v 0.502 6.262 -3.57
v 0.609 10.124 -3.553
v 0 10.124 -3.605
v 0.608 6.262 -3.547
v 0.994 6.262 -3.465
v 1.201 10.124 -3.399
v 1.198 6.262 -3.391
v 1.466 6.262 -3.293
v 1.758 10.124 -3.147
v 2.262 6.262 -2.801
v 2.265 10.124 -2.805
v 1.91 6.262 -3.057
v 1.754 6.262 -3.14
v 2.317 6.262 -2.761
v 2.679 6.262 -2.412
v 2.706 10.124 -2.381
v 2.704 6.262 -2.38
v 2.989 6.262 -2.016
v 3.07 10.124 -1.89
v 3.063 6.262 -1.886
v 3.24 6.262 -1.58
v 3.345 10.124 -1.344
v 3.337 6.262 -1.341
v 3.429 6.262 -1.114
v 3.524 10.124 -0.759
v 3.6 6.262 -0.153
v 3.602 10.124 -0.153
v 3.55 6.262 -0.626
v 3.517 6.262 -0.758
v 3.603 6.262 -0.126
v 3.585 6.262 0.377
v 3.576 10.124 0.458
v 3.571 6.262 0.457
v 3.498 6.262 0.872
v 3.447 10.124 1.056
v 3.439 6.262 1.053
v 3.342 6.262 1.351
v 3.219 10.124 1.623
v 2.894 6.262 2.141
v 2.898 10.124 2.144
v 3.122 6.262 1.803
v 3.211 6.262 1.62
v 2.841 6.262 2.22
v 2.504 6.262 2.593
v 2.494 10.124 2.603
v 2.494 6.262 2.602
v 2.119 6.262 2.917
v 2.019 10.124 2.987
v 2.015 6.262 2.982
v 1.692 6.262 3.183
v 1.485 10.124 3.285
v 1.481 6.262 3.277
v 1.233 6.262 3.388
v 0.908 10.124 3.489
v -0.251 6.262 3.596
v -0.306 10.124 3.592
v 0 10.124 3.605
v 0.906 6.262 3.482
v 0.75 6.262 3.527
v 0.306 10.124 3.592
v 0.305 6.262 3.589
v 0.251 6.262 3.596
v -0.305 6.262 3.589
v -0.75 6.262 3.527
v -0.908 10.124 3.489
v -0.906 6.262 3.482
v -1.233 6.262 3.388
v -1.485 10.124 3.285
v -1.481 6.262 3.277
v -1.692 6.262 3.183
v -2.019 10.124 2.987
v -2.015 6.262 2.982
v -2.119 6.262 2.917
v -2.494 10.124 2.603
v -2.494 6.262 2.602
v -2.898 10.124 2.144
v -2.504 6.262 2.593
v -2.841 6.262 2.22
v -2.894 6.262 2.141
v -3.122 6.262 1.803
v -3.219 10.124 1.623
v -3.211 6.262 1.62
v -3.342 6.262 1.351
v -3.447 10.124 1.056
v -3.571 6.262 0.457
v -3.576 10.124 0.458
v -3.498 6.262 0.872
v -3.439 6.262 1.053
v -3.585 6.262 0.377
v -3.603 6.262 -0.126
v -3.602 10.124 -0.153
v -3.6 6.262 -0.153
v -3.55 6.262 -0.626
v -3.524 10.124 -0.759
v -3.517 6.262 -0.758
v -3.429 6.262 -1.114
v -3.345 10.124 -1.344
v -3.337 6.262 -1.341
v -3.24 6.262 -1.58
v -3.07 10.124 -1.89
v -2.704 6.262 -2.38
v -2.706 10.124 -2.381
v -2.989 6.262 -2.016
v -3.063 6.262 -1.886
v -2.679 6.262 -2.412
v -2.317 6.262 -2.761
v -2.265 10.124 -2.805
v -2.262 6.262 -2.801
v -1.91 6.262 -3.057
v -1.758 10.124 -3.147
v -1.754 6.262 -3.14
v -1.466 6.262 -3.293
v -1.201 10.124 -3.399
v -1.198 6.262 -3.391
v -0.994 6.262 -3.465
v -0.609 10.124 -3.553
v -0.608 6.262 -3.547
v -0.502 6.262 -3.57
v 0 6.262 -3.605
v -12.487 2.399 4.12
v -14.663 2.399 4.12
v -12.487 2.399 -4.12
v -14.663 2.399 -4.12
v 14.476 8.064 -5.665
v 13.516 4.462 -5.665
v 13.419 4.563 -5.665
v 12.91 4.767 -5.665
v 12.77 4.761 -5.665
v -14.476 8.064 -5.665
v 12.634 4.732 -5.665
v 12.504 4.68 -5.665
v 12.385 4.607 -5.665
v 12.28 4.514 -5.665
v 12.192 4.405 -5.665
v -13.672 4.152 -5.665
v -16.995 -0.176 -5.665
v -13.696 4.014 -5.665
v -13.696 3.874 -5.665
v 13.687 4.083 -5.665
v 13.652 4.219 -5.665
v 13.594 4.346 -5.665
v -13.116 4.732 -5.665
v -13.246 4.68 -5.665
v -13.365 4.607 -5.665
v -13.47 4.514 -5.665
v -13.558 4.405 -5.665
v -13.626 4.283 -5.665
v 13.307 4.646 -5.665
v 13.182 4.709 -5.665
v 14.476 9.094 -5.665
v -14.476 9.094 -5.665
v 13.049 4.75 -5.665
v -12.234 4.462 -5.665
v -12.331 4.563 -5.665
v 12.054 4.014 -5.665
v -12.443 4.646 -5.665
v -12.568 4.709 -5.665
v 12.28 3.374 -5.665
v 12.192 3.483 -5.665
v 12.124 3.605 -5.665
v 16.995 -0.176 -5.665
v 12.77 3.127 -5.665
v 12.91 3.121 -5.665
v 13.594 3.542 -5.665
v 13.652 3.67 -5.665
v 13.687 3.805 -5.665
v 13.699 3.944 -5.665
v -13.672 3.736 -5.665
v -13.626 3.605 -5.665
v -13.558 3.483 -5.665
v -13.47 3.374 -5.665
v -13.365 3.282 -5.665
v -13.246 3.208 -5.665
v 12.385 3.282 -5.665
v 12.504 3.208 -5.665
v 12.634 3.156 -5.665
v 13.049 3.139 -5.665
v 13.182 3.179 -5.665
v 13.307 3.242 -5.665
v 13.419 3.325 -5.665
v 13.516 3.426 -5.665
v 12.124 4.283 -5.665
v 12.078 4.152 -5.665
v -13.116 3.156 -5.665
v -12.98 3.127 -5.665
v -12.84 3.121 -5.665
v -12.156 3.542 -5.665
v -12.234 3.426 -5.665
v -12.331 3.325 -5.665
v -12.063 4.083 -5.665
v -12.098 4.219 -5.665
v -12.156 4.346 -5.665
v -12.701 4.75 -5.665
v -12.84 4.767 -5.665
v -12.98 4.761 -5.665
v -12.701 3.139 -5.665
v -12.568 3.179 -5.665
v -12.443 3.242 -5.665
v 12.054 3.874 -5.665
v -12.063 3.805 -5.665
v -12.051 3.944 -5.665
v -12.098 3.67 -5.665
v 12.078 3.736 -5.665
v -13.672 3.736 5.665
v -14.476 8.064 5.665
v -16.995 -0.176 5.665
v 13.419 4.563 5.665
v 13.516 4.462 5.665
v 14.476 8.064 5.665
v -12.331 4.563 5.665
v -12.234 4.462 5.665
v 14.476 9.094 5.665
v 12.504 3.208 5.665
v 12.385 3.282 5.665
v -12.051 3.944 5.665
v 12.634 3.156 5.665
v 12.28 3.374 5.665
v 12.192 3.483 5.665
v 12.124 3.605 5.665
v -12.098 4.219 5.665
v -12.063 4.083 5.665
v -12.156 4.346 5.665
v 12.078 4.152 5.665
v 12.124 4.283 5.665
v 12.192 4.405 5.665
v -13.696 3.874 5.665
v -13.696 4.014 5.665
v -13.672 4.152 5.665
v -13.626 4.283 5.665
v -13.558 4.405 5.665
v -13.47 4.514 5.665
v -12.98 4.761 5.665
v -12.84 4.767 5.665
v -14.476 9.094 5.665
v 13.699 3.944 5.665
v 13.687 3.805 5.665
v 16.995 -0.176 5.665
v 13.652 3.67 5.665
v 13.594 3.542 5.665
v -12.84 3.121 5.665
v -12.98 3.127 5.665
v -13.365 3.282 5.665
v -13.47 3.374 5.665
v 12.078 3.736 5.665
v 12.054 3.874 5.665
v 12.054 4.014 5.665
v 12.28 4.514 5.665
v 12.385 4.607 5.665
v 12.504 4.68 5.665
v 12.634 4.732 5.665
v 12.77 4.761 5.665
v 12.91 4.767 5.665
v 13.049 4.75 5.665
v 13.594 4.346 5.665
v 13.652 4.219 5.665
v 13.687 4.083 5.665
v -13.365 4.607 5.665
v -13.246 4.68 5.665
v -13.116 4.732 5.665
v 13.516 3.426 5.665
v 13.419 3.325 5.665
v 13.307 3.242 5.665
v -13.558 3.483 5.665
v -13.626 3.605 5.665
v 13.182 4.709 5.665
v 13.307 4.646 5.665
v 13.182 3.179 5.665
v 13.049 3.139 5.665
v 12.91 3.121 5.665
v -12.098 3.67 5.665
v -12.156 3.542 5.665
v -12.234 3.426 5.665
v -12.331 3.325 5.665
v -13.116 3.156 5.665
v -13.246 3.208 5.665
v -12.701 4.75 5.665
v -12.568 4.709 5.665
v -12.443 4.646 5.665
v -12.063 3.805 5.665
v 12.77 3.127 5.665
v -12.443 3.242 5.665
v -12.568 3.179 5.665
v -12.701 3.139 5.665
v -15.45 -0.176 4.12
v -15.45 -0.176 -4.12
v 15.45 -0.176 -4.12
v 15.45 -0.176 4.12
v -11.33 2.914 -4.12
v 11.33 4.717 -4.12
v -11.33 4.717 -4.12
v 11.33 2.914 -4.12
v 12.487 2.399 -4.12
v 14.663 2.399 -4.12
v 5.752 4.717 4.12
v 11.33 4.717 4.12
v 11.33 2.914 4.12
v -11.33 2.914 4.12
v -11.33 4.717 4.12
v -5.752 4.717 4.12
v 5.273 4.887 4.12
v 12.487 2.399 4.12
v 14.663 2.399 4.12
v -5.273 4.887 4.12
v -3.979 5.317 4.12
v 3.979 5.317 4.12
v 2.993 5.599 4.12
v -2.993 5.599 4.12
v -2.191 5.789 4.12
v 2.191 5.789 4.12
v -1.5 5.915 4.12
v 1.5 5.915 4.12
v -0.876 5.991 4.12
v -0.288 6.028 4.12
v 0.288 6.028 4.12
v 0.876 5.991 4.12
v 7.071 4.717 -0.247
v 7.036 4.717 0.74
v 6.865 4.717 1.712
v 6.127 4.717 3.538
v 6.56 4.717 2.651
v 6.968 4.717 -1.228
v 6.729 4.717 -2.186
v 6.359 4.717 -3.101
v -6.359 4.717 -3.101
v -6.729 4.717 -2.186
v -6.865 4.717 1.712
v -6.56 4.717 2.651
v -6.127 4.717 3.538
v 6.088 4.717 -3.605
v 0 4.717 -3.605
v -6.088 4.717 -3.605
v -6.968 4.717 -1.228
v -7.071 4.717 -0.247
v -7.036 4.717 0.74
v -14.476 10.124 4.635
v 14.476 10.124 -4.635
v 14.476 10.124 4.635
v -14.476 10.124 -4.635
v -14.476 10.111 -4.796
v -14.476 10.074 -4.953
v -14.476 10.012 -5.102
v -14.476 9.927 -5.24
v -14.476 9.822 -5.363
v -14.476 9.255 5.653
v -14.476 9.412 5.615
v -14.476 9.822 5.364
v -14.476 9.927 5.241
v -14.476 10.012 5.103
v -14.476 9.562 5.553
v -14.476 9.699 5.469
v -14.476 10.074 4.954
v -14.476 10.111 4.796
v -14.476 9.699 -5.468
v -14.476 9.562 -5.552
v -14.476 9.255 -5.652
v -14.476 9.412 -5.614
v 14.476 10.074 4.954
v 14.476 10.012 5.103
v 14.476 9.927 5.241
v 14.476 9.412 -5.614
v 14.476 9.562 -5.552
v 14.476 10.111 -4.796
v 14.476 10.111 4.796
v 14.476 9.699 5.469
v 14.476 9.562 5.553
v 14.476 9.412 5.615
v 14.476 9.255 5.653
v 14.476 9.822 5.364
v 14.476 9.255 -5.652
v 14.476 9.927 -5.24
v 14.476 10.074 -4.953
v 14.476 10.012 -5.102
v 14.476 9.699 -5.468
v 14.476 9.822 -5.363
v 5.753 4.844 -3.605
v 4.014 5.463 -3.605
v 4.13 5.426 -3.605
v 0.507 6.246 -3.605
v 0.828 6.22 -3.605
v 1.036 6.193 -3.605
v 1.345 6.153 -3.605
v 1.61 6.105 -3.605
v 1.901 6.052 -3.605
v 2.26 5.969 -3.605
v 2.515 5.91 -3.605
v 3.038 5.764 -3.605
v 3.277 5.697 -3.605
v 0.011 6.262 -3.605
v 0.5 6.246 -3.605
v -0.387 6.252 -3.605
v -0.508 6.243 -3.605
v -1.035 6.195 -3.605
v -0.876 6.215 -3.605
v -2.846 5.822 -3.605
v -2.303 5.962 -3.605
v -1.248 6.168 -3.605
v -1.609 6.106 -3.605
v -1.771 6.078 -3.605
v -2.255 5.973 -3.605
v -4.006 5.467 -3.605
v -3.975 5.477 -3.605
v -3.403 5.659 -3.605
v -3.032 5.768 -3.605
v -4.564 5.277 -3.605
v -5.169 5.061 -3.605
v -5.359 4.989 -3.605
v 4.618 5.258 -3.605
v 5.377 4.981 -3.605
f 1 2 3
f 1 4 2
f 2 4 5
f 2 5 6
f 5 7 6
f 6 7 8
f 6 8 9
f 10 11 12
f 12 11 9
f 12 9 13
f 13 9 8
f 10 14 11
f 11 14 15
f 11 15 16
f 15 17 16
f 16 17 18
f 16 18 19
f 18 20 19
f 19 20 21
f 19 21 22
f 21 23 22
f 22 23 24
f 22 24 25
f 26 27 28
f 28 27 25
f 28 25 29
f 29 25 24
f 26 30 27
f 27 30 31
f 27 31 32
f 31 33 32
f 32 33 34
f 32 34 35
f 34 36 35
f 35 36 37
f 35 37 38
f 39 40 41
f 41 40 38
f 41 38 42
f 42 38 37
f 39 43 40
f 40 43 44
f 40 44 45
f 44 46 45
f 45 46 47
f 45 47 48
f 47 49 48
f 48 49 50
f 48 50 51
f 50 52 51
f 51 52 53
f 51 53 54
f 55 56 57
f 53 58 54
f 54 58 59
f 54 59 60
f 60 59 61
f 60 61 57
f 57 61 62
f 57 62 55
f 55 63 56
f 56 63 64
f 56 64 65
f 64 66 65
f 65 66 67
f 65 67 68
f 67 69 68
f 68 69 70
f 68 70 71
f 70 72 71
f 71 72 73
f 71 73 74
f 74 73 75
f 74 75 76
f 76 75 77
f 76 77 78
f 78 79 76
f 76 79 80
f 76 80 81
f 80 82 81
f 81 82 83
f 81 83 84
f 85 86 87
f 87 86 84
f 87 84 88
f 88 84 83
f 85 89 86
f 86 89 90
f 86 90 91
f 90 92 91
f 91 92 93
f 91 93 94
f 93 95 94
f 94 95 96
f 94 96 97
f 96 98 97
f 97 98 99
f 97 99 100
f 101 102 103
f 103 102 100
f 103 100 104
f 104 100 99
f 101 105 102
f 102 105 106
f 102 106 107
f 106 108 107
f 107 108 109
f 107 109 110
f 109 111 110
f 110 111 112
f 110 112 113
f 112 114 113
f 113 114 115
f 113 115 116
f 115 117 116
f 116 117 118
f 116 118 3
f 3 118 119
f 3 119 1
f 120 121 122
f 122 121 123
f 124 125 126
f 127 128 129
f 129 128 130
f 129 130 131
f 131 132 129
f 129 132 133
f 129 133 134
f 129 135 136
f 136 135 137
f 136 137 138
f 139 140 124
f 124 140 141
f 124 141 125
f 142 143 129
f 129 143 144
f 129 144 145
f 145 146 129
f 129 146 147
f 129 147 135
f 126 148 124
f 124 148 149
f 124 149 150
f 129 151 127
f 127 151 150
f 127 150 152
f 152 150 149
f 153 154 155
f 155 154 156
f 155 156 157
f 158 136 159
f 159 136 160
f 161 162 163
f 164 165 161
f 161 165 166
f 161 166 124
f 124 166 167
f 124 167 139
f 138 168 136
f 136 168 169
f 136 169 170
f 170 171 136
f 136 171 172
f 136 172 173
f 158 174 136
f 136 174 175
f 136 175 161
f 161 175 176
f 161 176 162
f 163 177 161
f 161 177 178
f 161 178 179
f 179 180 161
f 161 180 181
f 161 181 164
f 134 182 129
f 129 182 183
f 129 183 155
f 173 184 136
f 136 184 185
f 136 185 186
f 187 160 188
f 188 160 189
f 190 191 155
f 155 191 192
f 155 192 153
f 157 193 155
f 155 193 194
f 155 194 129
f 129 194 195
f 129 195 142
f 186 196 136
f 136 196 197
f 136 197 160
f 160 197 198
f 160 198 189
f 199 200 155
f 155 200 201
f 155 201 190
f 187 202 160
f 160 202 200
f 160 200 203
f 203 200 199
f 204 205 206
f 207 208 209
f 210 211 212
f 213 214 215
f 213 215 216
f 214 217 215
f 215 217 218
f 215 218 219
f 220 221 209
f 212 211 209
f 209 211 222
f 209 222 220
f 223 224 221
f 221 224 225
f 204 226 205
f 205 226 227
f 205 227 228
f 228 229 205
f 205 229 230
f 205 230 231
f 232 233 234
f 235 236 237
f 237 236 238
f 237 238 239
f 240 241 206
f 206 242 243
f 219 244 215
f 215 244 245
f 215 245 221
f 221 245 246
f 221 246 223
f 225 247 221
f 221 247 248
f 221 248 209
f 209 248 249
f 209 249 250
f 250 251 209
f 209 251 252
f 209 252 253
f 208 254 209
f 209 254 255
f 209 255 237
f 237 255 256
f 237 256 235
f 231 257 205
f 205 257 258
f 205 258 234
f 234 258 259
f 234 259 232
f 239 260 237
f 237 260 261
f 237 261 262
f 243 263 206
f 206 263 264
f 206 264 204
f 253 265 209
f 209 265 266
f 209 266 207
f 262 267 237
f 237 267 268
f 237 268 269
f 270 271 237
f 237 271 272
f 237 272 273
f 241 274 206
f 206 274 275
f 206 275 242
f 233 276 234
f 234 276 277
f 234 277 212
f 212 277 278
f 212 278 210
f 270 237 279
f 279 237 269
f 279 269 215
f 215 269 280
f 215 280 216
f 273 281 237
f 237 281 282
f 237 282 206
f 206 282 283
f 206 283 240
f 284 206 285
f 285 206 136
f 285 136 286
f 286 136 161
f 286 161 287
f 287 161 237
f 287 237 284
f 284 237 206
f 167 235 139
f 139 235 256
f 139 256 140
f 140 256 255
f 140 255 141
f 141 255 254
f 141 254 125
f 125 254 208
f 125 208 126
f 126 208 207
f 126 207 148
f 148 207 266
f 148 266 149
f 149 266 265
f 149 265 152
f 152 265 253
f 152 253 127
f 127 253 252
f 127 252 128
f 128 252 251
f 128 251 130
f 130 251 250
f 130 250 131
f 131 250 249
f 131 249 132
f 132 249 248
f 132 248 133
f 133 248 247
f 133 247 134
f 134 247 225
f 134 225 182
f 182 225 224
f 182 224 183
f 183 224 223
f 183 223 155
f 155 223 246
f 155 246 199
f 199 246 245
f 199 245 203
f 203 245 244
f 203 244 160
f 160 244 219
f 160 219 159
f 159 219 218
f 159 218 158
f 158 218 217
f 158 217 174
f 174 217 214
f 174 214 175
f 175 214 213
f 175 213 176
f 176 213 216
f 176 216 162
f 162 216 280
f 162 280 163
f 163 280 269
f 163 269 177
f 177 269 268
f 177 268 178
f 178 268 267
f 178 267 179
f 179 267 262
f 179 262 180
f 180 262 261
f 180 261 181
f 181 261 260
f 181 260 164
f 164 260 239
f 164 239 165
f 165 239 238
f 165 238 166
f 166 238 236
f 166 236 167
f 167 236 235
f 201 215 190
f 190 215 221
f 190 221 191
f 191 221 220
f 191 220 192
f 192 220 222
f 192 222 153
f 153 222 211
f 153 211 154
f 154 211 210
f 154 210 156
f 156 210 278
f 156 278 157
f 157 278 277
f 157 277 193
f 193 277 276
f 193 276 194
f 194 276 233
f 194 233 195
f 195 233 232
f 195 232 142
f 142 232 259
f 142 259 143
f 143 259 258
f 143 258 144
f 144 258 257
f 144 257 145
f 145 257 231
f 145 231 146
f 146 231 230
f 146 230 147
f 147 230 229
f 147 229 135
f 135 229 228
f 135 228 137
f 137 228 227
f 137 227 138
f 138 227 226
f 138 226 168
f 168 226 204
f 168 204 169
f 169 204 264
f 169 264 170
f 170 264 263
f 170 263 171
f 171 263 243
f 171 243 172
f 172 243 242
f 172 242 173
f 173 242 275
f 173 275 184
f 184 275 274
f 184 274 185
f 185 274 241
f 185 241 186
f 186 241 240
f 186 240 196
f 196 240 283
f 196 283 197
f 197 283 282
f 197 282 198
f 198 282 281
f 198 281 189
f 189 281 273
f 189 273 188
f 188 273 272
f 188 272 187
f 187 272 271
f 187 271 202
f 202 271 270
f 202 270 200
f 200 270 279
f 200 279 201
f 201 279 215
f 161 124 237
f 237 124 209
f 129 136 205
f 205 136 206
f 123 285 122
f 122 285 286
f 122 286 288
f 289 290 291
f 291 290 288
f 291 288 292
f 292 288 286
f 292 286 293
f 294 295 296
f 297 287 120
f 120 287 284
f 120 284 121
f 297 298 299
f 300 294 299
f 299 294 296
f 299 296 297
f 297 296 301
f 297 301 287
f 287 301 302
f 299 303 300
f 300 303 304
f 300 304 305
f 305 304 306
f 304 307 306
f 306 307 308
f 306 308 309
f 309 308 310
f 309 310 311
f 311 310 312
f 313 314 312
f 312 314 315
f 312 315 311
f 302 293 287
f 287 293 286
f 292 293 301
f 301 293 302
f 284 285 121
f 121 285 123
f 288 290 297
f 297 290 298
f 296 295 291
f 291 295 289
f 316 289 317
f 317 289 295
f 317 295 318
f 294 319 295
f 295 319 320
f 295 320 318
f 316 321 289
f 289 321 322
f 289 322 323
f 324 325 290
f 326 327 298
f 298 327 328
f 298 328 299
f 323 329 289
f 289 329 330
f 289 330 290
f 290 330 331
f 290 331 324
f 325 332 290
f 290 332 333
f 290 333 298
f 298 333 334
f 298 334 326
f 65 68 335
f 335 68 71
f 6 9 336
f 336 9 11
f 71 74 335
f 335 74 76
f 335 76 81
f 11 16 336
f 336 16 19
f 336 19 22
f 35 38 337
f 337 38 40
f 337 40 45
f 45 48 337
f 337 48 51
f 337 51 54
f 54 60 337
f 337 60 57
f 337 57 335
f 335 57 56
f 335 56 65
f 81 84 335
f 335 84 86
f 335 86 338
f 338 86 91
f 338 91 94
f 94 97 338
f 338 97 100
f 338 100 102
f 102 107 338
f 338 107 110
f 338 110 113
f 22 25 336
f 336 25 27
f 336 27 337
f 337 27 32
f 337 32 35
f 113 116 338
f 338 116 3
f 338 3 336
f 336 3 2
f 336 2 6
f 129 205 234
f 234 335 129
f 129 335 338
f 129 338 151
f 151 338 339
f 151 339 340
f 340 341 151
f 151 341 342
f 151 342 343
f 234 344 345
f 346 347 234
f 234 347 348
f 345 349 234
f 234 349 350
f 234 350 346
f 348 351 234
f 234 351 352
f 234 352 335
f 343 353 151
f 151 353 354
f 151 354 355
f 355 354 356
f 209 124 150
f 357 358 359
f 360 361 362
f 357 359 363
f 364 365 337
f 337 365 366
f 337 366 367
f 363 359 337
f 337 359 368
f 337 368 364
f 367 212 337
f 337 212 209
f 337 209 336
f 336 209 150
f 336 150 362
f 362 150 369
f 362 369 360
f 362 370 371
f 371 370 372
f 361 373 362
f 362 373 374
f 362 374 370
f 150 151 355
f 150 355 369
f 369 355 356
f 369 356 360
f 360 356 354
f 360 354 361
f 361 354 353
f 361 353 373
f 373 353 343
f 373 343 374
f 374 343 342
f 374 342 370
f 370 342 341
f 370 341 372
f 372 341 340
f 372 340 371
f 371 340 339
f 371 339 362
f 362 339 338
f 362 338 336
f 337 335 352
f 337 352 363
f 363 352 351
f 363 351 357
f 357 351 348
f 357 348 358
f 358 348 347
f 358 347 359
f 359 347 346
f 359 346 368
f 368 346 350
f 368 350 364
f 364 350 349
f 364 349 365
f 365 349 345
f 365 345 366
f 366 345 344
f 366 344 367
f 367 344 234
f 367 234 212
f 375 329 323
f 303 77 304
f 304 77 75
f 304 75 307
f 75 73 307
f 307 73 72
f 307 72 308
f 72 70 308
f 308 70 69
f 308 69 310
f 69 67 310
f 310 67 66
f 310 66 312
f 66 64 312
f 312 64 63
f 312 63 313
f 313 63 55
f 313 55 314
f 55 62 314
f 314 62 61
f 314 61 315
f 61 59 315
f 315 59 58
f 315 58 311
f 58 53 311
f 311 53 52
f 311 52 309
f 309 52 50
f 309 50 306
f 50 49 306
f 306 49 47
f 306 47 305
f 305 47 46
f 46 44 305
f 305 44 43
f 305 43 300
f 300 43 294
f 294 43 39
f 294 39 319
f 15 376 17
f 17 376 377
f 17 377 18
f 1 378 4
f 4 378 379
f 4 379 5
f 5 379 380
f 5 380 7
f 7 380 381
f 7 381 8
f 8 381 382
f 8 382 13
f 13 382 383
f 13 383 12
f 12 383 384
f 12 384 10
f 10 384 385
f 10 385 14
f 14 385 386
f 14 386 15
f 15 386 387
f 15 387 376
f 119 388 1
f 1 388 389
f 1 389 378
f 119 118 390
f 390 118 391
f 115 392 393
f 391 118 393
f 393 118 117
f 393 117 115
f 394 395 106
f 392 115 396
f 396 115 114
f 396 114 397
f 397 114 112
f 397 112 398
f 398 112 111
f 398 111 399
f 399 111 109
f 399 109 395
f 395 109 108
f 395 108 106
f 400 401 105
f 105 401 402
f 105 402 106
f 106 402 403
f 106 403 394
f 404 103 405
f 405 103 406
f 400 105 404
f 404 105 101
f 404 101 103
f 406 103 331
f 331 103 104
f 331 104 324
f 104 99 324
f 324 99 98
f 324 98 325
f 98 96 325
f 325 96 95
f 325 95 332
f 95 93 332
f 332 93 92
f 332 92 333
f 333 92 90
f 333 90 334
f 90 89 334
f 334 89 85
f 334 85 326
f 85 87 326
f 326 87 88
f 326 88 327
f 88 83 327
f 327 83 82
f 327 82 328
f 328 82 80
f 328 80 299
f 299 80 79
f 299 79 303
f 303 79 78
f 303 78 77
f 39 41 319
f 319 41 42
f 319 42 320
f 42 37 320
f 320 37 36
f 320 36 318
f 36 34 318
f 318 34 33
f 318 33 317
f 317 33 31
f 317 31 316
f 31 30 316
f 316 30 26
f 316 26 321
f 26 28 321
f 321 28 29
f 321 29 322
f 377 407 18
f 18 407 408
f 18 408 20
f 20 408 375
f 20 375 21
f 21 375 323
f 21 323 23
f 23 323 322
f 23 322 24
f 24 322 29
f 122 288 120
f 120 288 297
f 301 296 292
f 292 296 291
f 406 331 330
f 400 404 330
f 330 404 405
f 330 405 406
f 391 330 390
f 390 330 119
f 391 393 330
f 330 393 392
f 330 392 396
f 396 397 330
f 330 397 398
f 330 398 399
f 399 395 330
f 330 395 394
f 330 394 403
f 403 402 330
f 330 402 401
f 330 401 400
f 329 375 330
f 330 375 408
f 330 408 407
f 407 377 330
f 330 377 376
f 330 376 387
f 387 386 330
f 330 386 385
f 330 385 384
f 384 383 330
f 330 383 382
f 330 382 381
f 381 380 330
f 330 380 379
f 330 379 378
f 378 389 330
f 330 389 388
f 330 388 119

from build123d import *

# Parameters (mm, degrees)
SKETCH1_W                      = 33
SKETCH1_H                      = 11
SKETCH1_W_2                    = 30
SKETCH1_H_2                    = 8
BOSS_EXTRUDE1_DEPTH            = 8
SKETCH3_R                      = 0.8
CUT_EXTRUDE3_DEPTH             = 22.38340478
CUT_EXTRUDE5_REACH             = 21.144
SKETCH5_R                      = 3.5
CUT_EXTRUDE5_DIRECTION_2_DEPTH = 20.144189719
CUT_EXTRUDE4_DEPTH             = 22.38340478
CUT_EXTRUDE9_START             = -1.5
CUT_EXTRUDE9_DEPTH             = 8
SKETCH9_W                      = 22
SKETCH9_H                      = 8
CUT_EXTRUDE8_DEPTH             = 2.25
BOSS_EXTRUDE8_START            = 2
SKETCH12_W                     = 28.108309096
SKETCH12_H                     = 11
SKETCH12_R                     = 3.5
BOSS_EXTRUDE8_DEPTH            = 2
FILLET1_R                      = 1
CHAMFER1_SIZE                  = 1.5
CHAMFER1_SIZE_2                = 3.369055161
CHAMFER2_SIZE                  = 0.5
CHAMFER2_SIZE2                 = 1.123018387
CHAMFER3_SIZE                  = 0.5
CHAMFER3_SIZE2                 = 1.123018387
BOSS_EXTRUDE9_REACH            = 20.168
HEAT_SHRINK_OFFSET_SCALE_SCALE = 1.03


with BuildPart() as part:
    # Sketch1 → Boss-Extrude1 (new body)
    # profile 1 of 2: a face of its own
    with BuildSketch(Plane(origin=(0, 0, 0), x_dir=(1, 0, 0), z_dir=(0, 1, 0))):
        Rectangle(SKETCH1_W, SKETCH1_H)
        Rectangle(SKETCH1_W_2, SKETCH1_H_2, mode=Mode.SUBTRACT)
    # profile 2 of 2: a face of its own
    with BuildSketch(Plane(origin=(0, 0, 0), x_dir=(1, 0, 0), z_dir=(0, 1, 0))):
        Rectangle(SKETCH1_W_2, SKETCH1_H_2)
    extrude(amount=BOSS_EXTRUDE1_DEPTH)

    # Sketch3 → Cut-Extrude3 (cut, through all)
    with BuildSketch(Plane.XY.offset(5.5)):
        with Locations((-12.5, 4)):
            Circle(SKETCH3_R)
        with Locations((12.5, 4)):
            Circle(SKETCH3_R)
    extrude(amount=-CUT_EXTRUDE3_DEPTH, mode=Mode.SUBTRACT)

    # Sketch5 → Cut-Extrude5 (cut, up to next)
    with BuildSketch(Plane(origin=(0, 8, 0), x_dir=(1, 0, 0), z_dir=(0, 1, 0)), mode=Mode.PRIVATE) as cut_extrude5_sk1:
        with Locations(Location((0, 0, 0), (0, 0, 90))):
            Circle(SKETCH5_R)
    cut_extrude5_tool1 = extrude(cut_extrude5_sk1.sketch, amount=-CUT_EXTRUDE5_REACH, mode=Mode.PRIVATE) & part.part
    add(cut_extrude5_tool1.solids().sort_by_distance((0, 8, 0))[0], mode=Mode.SUBTRACT)

    # Sketch5 → Cut-Extrude5 direction 2 (cut)
    with BuildSketch(Plane(origin=(0, 8, 0), x_dir=(1, 0, 0), z_dir=(0, 1, 0))):
        with Locations(Location((0, 0, 0), (0, 0, 90))):
            Circle(SKETCH5_R)
    extrude(amount=CUT_EXTRUDE5_DIRECTION_2_DEPTH, mode=Mode.SUBTRACT)

    # Sketch4 → Cut-Extrude4 (cut, through all)
    with BuildSketch(Plane.XY.offset(5.5)):
        Polygon((-16.5, 0), (-14.054154548, 8), (-16.5, 8), align=None)
        Polygon((16.5, 0), (14.054154548, 8), (16.5, 8), align=None)
    extrude(amount=-CUT_EXTRUDE4_DEPTH, mode=Mode.SUBTRACT)

    # Sketch14 → Cut-Extrude9 (cut)
    with BuildSketch(Plane.XY.offset(5.5).offset(CUT_EXTRUDE9_START)):
        Polygon((-15, 0), (15, 0), (14.235673296, 2.5), (-14.235673296, 2.5), align=None)
    extrude(amount=-CUT_EXTRUDE9_DEPTH, mode=Mode.SUBTRACT)

    # Sketch9 → Cut-Extrude8 (cut)
    with BuildSketch(Plane.XZ.offset(-2.5)):
        Rectangle(SKETCH9_W, SKETCH9_H)
    extrude(amount=-CUT_EXTRUDE8_DEPTH, mode=Mode.SUBTRACT)

    # Sketch12 → Boss-Extrude8 (add)
    with BuildSketch(Plane(origin=(0, 8, 0), x_dir=(1, 0, 0), z_dir=(0, 1, 0)).offset(BOSS_EXTRUDE8_START)):
        Rectangle(SKETCH12_W, SKETCH12_H)
        with Locations(Location((0, 0, 0), (0, 0, 90))):
            Circle(SKETCH12_R, mode=Mode.SUBTRACT)
    extrude(amount=-BOSS_EXTRUDE8_DEPTH)

    # Fillet1
    fillet1_edges = [part.edges().sort_by_distance(p)[0] for p in [
        (0, 10, 5.5),
        (0, 10, -5.5),
    ]]
    fillet(fillet1_edges, radius=FILLET1_R)

    # Chamfer1
    # the kernel refuses this chamfer: 3.369055161, 1.5 mm, written as the material it takes off along each edge
    with BuildSketch(Plane(origin=(0, 4.75, 0), x_dir=(0, 0, -1), z_dir=(1, 0, 0))) as chamfer1_piece_1_section:
        Polygon((3.5, CHAMFER1_SIZE), (3.5 + CHAMFER1_SIZE_2, 0), (3.5, 0), align=None)
    chamfer1_piece_1 = revolve(axis=Axis((0, 4.75, 0), (0, 1, 0)), mode=Mode.PRIVATE)
    chamfer1_piece_1 = split(chamfer1_piece_1, bisect_by=Plane(origin=(-3.432540166, 6.000877118, 4), z_dir=(0, 0, -1)), keep=Keep.TOP, mode=Mode.PRIVATE)
    chamfer1_piece_1 = split(chamfer1_piece_1, bisect_by=Plane(origin=(-3.432540166, 6.000877118, -4), z_dir=(0, 0, 1)), keep=Keep.TOP, mode=Mode.PRIVATE)
    add(chamfer1_piece_1, mode=Mode.SUBTRACT)

    # Chamfer2
    chamfer2_edges = [part.edges().sort_by_distance(p)[0] for p in [
        (-11, 2.5, 0),
    ]]
    chamfer2_side = [part.faces().sort_by_distance(p)[0] for p in [
        (-11, 3.625, 0),
    ]]
    chamfer(chamfer2_edges, length=CHAMFER2_SIZE, length2=CHAMFER2_SIZE2, reference=chamfer2_side[0])

    # Chamfer3
    chamfer3_edges = [part.edges().sort_by_distance(p)[0] for p in [
        (11, 2.5, 0),
    ]]
    chamfer3_side = [part.faces().sort_by_distance(p)[0] for p in [
        (11, 3.625, 0),
    ]]
    chamfer(chamfer3_edges, length=CHAMFER3_SIZE, length2=CHAMFER3_SIZE2, reference=chamfer3_side[0])

    # Sketch17 → Boss-Extrude9 (add, up to next)
    with BuildSketch(Plane.XZ.offset(-4.75), mode=Mode.PRIVATE) as boss_extrude9_sk1:
        Polygon((5.910492264, -3.5), (0, -3.5), (-5.910492264, -3.5), (-5.910492264, -4), (5.910492264, -4), align=None)
    boss_extrude9_tool1 = extrude(boss_extrude9_sk1.sketch, amount=-BOSS_EXTRUDE9_REACH, mode=Mode.PRIVATE) - part.part
    add(boss_extrude9_tool1.solids().sort_by_distance((0, 4.75, -3.75))[0])


with BuildPart() as part_1:
    # Heat shrink offset scale: scaled about (0, 5.8657217, -0.009275667)
    add(part.part.scale(HEAT_SHRINK_OFFSET_SCALE_SCALE).moved(Location((0, -0.175971651, 0.00027827))))


solid = part_1.part
